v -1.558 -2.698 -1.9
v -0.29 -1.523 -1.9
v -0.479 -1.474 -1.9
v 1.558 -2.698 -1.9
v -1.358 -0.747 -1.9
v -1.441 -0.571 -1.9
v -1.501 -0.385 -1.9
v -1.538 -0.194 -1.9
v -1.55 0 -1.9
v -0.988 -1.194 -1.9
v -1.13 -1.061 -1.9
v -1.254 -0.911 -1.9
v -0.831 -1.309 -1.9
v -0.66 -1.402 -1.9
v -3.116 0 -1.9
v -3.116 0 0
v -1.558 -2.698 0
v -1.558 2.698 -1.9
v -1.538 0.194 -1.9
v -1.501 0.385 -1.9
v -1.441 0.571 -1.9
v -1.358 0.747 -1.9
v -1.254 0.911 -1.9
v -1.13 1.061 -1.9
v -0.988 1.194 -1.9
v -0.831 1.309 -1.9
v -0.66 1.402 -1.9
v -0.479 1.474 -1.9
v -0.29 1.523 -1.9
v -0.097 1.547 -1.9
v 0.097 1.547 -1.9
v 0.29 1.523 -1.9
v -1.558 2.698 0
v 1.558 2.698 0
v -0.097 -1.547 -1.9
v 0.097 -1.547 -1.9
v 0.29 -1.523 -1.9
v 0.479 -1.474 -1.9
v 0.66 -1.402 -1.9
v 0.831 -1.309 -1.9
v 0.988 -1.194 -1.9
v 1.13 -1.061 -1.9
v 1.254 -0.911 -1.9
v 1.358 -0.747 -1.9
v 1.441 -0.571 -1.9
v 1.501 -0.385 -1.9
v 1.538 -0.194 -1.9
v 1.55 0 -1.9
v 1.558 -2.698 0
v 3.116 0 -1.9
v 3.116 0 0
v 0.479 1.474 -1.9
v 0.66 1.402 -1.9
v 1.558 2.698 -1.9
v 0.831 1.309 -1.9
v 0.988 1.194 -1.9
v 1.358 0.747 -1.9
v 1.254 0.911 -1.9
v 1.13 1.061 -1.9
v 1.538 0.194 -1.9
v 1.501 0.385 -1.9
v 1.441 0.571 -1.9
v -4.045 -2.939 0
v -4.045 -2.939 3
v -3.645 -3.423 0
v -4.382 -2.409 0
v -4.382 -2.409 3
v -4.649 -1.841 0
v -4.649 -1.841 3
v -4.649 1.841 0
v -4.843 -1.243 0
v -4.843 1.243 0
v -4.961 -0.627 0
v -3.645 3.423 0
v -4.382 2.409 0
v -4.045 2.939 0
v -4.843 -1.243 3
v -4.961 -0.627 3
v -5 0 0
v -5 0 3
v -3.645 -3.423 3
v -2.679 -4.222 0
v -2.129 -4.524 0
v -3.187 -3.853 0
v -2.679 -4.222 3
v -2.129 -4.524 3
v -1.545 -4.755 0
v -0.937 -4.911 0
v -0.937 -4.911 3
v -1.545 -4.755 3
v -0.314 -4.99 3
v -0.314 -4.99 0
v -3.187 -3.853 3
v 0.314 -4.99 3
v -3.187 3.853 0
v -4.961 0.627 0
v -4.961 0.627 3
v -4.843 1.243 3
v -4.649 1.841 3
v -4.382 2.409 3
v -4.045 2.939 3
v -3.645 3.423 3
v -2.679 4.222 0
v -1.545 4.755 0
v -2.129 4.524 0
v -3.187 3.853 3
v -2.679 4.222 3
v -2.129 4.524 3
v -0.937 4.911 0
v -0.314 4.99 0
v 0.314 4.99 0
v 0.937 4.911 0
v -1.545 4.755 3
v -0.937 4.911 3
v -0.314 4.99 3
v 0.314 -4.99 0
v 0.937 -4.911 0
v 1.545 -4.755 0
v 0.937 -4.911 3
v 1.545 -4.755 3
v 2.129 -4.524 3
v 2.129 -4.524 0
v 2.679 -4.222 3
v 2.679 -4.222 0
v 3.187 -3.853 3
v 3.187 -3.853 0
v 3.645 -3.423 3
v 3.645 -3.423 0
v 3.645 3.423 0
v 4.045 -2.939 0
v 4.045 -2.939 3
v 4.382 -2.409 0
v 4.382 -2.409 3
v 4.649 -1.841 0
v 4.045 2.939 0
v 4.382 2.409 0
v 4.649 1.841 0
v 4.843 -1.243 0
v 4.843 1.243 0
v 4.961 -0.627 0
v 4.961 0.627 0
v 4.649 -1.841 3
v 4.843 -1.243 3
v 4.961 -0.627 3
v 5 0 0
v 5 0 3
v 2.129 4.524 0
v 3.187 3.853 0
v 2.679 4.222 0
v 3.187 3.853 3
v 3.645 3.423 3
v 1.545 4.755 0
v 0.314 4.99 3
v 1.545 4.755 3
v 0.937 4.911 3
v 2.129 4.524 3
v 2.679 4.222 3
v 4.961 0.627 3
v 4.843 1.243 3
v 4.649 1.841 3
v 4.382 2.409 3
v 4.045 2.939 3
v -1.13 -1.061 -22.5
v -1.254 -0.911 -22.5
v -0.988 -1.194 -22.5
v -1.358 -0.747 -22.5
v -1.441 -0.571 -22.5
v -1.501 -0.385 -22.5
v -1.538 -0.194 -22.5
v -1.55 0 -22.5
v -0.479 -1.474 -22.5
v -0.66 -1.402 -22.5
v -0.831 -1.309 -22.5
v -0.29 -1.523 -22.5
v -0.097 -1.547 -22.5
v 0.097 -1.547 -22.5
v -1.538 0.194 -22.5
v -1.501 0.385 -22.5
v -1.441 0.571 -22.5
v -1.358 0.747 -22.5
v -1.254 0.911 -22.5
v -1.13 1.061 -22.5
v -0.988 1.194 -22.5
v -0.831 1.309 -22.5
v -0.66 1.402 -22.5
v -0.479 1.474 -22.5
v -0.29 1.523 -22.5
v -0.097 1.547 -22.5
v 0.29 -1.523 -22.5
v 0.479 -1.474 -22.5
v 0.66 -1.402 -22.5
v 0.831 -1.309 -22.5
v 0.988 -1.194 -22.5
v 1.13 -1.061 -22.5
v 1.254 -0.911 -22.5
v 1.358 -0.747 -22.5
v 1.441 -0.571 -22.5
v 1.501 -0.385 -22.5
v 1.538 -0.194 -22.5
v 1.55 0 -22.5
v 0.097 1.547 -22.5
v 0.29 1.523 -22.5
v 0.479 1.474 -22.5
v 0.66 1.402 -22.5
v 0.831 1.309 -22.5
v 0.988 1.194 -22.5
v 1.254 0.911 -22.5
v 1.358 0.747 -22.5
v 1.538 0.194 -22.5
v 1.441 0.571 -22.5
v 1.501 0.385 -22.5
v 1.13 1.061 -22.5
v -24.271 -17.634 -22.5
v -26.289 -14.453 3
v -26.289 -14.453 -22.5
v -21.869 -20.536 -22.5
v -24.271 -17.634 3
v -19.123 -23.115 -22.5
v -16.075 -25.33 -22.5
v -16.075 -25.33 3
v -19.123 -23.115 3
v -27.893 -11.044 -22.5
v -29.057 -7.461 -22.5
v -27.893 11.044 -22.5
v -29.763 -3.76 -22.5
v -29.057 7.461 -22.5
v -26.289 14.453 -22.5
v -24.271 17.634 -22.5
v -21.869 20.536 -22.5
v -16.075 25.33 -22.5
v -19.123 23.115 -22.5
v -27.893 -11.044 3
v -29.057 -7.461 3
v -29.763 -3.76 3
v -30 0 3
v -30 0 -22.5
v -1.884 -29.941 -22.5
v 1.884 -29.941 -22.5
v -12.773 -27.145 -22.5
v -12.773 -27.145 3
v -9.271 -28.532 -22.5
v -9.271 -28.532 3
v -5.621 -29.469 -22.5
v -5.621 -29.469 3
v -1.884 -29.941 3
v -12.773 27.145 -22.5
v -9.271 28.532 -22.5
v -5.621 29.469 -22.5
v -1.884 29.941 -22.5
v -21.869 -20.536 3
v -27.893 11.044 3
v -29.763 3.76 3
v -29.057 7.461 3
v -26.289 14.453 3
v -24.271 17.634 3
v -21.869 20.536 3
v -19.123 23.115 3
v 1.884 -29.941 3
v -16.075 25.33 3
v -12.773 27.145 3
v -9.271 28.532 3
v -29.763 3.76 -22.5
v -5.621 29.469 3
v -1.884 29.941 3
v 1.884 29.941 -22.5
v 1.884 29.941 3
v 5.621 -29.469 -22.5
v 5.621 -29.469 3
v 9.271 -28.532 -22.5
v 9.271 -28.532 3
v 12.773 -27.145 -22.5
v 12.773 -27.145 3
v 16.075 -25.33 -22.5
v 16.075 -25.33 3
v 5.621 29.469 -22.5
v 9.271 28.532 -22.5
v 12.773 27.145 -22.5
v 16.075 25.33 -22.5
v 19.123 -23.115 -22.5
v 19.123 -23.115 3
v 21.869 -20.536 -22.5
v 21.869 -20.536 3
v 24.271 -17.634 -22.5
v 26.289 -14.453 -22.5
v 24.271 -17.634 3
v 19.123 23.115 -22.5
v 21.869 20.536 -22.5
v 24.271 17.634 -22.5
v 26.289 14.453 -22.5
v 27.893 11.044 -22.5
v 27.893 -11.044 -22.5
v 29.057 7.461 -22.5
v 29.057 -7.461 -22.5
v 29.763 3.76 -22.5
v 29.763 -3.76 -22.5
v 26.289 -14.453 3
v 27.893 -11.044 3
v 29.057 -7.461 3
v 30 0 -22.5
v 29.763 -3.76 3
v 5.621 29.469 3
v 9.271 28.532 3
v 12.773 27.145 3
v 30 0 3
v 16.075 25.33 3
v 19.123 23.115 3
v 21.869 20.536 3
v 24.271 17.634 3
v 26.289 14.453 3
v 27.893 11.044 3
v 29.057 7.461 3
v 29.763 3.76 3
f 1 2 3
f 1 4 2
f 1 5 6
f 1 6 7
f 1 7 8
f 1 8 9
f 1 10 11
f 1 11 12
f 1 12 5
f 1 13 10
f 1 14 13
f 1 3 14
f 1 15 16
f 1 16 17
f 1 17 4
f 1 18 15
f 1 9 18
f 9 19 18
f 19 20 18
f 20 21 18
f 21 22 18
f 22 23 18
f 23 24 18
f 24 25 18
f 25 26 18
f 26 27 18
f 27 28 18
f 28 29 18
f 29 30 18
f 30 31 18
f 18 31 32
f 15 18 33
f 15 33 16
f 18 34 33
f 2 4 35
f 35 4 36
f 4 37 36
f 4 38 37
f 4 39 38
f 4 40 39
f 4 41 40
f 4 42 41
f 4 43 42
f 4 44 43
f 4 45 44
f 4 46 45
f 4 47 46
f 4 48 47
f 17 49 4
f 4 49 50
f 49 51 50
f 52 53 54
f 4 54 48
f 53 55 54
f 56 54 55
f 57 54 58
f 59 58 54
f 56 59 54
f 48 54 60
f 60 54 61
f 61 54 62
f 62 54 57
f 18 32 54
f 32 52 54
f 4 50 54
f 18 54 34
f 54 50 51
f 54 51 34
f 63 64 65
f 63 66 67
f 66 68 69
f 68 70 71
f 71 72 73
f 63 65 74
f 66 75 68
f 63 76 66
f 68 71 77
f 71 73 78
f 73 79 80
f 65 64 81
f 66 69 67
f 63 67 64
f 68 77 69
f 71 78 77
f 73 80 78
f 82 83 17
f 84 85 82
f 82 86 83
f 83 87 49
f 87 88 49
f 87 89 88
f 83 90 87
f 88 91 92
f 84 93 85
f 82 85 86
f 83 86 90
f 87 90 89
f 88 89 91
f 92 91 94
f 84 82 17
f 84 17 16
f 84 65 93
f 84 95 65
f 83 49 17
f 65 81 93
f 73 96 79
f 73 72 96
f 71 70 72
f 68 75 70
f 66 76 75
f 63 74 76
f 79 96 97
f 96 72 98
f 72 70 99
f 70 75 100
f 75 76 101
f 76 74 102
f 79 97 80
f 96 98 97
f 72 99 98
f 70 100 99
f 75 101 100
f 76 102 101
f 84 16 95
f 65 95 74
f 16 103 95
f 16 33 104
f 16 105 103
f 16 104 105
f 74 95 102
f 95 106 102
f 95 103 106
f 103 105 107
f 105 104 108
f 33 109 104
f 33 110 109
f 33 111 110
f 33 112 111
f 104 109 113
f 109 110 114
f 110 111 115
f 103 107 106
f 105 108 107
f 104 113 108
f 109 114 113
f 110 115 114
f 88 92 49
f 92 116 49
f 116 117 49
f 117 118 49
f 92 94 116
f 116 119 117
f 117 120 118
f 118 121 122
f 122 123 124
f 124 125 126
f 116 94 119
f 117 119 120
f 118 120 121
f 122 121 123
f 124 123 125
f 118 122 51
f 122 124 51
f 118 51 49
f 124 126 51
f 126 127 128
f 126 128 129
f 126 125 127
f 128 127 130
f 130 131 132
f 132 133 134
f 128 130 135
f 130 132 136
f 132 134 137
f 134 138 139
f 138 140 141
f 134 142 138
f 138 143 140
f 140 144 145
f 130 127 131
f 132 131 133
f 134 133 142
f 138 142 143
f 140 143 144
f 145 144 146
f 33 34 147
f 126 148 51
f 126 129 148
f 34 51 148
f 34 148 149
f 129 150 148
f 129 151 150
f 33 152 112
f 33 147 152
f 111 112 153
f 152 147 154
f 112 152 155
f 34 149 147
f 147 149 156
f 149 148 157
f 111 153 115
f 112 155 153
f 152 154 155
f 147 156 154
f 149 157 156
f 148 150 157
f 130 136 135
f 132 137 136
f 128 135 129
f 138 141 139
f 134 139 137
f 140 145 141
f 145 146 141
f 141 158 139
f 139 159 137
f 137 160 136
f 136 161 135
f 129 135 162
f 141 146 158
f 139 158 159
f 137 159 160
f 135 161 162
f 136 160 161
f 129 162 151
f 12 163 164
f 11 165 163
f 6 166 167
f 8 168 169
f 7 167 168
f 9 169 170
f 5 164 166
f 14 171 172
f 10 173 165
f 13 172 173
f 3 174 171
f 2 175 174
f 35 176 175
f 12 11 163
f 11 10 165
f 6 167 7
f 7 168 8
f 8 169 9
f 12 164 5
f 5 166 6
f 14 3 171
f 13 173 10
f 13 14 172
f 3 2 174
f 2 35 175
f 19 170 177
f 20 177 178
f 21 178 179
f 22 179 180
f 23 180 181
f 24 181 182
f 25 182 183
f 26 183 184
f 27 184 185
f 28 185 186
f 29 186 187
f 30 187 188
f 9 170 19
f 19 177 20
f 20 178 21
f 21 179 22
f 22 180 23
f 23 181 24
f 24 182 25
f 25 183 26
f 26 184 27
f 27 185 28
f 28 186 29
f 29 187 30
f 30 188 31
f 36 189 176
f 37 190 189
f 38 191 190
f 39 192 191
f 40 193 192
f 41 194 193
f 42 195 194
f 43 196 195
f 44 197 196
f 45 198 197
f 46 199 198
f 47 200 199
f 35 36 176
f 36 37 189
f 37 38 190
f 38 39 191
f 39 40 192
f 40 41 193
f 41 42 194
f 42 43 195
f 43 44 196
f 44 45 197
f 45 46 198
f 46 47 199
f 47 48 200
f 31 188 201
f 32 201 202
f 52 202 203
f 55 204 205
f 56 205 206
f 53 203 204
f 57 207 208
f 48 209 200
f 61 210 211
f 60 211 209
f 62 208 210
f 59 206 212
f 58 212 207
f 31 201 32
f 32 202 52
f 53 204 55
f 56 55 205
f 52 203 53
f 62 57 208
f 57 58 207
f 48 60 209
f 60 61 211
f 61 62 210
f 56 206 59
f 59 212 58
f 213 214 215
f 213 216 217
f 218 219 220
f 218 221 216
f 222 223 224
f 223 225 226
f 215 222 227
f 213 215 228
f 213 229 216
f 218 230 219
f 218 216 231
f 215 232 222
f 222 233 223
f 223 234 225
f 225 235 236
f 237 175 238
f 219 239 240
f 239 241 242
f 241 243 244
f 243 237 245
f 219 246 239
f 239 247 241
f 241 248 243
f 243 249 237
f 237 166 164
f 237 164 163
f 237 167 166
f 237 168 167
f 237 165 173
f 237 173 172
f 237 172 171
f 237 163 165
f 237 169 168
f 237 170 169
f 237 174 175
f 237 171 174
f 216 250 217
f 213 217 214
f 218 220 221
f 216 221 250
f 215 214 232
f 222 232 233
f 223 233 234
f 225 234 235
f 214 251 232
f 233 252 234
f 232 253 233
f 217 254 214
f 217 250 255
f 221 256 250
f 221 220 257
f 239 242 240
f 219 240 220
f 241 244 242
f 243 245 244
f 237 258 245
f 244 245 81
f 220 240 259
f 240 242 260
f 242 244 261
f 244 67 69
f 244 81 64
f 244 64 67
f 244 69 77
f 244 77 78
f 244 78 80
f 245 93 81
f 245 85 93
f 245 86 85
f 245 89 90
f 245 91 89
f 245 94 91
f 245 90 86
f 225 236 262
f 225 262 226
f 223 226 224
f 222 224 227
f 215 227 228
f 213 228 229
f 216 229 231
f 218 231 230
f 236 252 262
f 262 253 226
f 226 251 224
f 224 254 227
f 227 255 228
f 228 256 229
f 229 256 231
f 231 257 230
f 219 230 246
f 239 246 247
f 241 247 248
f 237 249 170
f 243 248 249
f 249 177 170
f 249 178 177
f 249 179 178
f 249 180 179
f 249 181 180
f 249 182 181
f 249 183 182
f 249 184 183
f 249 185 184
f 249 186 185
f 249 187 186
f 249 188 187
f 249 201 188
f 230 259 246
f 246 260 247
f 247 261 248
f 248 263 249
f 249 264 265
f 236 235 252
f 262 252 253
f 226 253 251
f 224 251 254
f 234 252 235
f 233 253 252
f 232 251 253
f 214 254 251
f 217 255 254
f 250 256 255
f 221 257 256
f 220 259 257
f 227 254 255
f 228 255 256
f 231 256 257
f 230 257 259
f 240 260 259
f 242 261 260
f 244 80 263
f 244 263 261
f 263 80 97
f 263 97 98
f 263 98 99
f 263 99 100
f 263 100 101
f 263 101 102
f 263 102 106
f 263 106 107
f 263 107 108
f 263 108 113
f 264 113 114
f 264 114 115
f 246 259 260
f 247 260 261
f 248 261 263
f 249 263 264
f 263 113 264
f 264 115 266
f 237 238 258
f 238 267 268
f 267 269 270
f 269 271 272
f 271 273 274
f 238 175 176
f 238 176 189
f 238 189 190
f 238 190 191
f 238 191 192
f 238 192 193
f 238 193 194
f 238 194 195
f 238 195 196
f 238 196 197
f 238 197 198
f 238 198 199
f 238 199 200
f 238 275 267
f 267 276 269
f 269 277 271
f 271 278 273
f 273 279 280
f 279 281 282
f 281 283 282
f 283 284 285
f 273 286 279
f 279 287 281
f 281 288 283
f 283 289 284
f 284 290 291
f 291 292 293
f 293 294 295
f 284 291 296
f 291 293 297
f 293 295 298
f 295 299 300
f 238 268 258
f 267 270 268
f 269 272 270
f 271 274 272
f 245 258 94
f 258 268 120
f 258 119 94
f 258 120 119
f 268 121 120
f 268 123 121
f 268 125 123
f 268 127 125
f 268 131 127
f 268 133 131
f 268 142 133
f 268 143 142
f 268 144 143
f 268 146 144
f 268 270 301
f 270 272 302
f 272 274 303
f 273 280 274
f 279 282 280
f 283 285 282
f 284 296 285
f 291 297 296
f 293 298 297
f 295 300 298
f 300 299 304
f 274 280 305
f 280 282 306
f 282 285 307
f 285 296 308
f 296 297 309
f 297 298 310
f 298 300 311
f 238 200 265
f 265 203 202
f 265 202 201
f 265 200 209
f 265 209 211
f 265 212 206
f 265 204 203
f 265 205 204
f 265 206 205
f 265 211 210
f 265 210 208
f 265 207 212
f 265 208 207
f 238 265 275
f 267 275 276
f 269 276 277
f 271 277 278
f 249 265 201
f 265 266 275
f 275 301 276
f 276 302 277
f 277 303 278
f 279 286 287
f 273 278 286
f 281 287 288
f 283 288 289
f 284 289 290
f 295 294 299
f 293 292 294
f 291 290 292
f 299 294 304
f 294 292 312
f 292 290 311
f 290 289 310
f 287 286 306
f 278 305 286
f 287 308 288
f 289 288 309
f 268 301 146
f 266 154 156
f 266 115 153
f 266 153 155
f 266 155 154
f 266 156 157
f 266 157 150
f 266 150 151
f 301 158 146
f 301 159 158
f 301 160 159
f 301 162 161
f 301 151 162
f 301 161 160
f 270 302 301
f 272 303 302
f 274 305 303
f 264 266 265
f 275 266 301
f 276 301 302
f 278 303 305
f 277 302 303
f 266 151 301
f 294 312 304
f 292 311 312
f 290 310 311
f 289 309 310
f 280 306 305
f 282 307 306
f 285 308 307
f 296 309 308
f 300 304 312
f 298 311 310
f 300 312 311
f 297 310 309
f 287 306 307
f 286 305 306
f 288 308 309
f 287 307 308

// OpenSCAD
$fn = 50;

difference() {
	union() {
		translate(v = [0, 0, -22.5]) {
			cylinder(h = 25.5, r = 30.0);
		}
	}
	union() {
		translate(v = [0, 0, 0]) {
			rotate(a = [0, 0, 0]) {
				difference() {
					union() {
						translate(v = [0, 0, -1.9]) {
							linear_extrude(height = 1.9) {
								polygon(points = [[3.1158, 0.0], [1.5579000000000005, 2.698361953111554], [-1.5578999999999994, 2.6983619531115544], [-3.1158, 3.815754496783323e-16], [-1.5579000000000014, -2.6983619531115535], [1.557899999999998, -2.6983619531115552]]);
							}
						}
					}
					union();
				}
			}
		}
		#cylinder(h = 3, r = 5.0);
		#translate(v = [0, 0, -100.0]) {
			cylinder(h = 200, r = 1.55);
		}
	}
}
